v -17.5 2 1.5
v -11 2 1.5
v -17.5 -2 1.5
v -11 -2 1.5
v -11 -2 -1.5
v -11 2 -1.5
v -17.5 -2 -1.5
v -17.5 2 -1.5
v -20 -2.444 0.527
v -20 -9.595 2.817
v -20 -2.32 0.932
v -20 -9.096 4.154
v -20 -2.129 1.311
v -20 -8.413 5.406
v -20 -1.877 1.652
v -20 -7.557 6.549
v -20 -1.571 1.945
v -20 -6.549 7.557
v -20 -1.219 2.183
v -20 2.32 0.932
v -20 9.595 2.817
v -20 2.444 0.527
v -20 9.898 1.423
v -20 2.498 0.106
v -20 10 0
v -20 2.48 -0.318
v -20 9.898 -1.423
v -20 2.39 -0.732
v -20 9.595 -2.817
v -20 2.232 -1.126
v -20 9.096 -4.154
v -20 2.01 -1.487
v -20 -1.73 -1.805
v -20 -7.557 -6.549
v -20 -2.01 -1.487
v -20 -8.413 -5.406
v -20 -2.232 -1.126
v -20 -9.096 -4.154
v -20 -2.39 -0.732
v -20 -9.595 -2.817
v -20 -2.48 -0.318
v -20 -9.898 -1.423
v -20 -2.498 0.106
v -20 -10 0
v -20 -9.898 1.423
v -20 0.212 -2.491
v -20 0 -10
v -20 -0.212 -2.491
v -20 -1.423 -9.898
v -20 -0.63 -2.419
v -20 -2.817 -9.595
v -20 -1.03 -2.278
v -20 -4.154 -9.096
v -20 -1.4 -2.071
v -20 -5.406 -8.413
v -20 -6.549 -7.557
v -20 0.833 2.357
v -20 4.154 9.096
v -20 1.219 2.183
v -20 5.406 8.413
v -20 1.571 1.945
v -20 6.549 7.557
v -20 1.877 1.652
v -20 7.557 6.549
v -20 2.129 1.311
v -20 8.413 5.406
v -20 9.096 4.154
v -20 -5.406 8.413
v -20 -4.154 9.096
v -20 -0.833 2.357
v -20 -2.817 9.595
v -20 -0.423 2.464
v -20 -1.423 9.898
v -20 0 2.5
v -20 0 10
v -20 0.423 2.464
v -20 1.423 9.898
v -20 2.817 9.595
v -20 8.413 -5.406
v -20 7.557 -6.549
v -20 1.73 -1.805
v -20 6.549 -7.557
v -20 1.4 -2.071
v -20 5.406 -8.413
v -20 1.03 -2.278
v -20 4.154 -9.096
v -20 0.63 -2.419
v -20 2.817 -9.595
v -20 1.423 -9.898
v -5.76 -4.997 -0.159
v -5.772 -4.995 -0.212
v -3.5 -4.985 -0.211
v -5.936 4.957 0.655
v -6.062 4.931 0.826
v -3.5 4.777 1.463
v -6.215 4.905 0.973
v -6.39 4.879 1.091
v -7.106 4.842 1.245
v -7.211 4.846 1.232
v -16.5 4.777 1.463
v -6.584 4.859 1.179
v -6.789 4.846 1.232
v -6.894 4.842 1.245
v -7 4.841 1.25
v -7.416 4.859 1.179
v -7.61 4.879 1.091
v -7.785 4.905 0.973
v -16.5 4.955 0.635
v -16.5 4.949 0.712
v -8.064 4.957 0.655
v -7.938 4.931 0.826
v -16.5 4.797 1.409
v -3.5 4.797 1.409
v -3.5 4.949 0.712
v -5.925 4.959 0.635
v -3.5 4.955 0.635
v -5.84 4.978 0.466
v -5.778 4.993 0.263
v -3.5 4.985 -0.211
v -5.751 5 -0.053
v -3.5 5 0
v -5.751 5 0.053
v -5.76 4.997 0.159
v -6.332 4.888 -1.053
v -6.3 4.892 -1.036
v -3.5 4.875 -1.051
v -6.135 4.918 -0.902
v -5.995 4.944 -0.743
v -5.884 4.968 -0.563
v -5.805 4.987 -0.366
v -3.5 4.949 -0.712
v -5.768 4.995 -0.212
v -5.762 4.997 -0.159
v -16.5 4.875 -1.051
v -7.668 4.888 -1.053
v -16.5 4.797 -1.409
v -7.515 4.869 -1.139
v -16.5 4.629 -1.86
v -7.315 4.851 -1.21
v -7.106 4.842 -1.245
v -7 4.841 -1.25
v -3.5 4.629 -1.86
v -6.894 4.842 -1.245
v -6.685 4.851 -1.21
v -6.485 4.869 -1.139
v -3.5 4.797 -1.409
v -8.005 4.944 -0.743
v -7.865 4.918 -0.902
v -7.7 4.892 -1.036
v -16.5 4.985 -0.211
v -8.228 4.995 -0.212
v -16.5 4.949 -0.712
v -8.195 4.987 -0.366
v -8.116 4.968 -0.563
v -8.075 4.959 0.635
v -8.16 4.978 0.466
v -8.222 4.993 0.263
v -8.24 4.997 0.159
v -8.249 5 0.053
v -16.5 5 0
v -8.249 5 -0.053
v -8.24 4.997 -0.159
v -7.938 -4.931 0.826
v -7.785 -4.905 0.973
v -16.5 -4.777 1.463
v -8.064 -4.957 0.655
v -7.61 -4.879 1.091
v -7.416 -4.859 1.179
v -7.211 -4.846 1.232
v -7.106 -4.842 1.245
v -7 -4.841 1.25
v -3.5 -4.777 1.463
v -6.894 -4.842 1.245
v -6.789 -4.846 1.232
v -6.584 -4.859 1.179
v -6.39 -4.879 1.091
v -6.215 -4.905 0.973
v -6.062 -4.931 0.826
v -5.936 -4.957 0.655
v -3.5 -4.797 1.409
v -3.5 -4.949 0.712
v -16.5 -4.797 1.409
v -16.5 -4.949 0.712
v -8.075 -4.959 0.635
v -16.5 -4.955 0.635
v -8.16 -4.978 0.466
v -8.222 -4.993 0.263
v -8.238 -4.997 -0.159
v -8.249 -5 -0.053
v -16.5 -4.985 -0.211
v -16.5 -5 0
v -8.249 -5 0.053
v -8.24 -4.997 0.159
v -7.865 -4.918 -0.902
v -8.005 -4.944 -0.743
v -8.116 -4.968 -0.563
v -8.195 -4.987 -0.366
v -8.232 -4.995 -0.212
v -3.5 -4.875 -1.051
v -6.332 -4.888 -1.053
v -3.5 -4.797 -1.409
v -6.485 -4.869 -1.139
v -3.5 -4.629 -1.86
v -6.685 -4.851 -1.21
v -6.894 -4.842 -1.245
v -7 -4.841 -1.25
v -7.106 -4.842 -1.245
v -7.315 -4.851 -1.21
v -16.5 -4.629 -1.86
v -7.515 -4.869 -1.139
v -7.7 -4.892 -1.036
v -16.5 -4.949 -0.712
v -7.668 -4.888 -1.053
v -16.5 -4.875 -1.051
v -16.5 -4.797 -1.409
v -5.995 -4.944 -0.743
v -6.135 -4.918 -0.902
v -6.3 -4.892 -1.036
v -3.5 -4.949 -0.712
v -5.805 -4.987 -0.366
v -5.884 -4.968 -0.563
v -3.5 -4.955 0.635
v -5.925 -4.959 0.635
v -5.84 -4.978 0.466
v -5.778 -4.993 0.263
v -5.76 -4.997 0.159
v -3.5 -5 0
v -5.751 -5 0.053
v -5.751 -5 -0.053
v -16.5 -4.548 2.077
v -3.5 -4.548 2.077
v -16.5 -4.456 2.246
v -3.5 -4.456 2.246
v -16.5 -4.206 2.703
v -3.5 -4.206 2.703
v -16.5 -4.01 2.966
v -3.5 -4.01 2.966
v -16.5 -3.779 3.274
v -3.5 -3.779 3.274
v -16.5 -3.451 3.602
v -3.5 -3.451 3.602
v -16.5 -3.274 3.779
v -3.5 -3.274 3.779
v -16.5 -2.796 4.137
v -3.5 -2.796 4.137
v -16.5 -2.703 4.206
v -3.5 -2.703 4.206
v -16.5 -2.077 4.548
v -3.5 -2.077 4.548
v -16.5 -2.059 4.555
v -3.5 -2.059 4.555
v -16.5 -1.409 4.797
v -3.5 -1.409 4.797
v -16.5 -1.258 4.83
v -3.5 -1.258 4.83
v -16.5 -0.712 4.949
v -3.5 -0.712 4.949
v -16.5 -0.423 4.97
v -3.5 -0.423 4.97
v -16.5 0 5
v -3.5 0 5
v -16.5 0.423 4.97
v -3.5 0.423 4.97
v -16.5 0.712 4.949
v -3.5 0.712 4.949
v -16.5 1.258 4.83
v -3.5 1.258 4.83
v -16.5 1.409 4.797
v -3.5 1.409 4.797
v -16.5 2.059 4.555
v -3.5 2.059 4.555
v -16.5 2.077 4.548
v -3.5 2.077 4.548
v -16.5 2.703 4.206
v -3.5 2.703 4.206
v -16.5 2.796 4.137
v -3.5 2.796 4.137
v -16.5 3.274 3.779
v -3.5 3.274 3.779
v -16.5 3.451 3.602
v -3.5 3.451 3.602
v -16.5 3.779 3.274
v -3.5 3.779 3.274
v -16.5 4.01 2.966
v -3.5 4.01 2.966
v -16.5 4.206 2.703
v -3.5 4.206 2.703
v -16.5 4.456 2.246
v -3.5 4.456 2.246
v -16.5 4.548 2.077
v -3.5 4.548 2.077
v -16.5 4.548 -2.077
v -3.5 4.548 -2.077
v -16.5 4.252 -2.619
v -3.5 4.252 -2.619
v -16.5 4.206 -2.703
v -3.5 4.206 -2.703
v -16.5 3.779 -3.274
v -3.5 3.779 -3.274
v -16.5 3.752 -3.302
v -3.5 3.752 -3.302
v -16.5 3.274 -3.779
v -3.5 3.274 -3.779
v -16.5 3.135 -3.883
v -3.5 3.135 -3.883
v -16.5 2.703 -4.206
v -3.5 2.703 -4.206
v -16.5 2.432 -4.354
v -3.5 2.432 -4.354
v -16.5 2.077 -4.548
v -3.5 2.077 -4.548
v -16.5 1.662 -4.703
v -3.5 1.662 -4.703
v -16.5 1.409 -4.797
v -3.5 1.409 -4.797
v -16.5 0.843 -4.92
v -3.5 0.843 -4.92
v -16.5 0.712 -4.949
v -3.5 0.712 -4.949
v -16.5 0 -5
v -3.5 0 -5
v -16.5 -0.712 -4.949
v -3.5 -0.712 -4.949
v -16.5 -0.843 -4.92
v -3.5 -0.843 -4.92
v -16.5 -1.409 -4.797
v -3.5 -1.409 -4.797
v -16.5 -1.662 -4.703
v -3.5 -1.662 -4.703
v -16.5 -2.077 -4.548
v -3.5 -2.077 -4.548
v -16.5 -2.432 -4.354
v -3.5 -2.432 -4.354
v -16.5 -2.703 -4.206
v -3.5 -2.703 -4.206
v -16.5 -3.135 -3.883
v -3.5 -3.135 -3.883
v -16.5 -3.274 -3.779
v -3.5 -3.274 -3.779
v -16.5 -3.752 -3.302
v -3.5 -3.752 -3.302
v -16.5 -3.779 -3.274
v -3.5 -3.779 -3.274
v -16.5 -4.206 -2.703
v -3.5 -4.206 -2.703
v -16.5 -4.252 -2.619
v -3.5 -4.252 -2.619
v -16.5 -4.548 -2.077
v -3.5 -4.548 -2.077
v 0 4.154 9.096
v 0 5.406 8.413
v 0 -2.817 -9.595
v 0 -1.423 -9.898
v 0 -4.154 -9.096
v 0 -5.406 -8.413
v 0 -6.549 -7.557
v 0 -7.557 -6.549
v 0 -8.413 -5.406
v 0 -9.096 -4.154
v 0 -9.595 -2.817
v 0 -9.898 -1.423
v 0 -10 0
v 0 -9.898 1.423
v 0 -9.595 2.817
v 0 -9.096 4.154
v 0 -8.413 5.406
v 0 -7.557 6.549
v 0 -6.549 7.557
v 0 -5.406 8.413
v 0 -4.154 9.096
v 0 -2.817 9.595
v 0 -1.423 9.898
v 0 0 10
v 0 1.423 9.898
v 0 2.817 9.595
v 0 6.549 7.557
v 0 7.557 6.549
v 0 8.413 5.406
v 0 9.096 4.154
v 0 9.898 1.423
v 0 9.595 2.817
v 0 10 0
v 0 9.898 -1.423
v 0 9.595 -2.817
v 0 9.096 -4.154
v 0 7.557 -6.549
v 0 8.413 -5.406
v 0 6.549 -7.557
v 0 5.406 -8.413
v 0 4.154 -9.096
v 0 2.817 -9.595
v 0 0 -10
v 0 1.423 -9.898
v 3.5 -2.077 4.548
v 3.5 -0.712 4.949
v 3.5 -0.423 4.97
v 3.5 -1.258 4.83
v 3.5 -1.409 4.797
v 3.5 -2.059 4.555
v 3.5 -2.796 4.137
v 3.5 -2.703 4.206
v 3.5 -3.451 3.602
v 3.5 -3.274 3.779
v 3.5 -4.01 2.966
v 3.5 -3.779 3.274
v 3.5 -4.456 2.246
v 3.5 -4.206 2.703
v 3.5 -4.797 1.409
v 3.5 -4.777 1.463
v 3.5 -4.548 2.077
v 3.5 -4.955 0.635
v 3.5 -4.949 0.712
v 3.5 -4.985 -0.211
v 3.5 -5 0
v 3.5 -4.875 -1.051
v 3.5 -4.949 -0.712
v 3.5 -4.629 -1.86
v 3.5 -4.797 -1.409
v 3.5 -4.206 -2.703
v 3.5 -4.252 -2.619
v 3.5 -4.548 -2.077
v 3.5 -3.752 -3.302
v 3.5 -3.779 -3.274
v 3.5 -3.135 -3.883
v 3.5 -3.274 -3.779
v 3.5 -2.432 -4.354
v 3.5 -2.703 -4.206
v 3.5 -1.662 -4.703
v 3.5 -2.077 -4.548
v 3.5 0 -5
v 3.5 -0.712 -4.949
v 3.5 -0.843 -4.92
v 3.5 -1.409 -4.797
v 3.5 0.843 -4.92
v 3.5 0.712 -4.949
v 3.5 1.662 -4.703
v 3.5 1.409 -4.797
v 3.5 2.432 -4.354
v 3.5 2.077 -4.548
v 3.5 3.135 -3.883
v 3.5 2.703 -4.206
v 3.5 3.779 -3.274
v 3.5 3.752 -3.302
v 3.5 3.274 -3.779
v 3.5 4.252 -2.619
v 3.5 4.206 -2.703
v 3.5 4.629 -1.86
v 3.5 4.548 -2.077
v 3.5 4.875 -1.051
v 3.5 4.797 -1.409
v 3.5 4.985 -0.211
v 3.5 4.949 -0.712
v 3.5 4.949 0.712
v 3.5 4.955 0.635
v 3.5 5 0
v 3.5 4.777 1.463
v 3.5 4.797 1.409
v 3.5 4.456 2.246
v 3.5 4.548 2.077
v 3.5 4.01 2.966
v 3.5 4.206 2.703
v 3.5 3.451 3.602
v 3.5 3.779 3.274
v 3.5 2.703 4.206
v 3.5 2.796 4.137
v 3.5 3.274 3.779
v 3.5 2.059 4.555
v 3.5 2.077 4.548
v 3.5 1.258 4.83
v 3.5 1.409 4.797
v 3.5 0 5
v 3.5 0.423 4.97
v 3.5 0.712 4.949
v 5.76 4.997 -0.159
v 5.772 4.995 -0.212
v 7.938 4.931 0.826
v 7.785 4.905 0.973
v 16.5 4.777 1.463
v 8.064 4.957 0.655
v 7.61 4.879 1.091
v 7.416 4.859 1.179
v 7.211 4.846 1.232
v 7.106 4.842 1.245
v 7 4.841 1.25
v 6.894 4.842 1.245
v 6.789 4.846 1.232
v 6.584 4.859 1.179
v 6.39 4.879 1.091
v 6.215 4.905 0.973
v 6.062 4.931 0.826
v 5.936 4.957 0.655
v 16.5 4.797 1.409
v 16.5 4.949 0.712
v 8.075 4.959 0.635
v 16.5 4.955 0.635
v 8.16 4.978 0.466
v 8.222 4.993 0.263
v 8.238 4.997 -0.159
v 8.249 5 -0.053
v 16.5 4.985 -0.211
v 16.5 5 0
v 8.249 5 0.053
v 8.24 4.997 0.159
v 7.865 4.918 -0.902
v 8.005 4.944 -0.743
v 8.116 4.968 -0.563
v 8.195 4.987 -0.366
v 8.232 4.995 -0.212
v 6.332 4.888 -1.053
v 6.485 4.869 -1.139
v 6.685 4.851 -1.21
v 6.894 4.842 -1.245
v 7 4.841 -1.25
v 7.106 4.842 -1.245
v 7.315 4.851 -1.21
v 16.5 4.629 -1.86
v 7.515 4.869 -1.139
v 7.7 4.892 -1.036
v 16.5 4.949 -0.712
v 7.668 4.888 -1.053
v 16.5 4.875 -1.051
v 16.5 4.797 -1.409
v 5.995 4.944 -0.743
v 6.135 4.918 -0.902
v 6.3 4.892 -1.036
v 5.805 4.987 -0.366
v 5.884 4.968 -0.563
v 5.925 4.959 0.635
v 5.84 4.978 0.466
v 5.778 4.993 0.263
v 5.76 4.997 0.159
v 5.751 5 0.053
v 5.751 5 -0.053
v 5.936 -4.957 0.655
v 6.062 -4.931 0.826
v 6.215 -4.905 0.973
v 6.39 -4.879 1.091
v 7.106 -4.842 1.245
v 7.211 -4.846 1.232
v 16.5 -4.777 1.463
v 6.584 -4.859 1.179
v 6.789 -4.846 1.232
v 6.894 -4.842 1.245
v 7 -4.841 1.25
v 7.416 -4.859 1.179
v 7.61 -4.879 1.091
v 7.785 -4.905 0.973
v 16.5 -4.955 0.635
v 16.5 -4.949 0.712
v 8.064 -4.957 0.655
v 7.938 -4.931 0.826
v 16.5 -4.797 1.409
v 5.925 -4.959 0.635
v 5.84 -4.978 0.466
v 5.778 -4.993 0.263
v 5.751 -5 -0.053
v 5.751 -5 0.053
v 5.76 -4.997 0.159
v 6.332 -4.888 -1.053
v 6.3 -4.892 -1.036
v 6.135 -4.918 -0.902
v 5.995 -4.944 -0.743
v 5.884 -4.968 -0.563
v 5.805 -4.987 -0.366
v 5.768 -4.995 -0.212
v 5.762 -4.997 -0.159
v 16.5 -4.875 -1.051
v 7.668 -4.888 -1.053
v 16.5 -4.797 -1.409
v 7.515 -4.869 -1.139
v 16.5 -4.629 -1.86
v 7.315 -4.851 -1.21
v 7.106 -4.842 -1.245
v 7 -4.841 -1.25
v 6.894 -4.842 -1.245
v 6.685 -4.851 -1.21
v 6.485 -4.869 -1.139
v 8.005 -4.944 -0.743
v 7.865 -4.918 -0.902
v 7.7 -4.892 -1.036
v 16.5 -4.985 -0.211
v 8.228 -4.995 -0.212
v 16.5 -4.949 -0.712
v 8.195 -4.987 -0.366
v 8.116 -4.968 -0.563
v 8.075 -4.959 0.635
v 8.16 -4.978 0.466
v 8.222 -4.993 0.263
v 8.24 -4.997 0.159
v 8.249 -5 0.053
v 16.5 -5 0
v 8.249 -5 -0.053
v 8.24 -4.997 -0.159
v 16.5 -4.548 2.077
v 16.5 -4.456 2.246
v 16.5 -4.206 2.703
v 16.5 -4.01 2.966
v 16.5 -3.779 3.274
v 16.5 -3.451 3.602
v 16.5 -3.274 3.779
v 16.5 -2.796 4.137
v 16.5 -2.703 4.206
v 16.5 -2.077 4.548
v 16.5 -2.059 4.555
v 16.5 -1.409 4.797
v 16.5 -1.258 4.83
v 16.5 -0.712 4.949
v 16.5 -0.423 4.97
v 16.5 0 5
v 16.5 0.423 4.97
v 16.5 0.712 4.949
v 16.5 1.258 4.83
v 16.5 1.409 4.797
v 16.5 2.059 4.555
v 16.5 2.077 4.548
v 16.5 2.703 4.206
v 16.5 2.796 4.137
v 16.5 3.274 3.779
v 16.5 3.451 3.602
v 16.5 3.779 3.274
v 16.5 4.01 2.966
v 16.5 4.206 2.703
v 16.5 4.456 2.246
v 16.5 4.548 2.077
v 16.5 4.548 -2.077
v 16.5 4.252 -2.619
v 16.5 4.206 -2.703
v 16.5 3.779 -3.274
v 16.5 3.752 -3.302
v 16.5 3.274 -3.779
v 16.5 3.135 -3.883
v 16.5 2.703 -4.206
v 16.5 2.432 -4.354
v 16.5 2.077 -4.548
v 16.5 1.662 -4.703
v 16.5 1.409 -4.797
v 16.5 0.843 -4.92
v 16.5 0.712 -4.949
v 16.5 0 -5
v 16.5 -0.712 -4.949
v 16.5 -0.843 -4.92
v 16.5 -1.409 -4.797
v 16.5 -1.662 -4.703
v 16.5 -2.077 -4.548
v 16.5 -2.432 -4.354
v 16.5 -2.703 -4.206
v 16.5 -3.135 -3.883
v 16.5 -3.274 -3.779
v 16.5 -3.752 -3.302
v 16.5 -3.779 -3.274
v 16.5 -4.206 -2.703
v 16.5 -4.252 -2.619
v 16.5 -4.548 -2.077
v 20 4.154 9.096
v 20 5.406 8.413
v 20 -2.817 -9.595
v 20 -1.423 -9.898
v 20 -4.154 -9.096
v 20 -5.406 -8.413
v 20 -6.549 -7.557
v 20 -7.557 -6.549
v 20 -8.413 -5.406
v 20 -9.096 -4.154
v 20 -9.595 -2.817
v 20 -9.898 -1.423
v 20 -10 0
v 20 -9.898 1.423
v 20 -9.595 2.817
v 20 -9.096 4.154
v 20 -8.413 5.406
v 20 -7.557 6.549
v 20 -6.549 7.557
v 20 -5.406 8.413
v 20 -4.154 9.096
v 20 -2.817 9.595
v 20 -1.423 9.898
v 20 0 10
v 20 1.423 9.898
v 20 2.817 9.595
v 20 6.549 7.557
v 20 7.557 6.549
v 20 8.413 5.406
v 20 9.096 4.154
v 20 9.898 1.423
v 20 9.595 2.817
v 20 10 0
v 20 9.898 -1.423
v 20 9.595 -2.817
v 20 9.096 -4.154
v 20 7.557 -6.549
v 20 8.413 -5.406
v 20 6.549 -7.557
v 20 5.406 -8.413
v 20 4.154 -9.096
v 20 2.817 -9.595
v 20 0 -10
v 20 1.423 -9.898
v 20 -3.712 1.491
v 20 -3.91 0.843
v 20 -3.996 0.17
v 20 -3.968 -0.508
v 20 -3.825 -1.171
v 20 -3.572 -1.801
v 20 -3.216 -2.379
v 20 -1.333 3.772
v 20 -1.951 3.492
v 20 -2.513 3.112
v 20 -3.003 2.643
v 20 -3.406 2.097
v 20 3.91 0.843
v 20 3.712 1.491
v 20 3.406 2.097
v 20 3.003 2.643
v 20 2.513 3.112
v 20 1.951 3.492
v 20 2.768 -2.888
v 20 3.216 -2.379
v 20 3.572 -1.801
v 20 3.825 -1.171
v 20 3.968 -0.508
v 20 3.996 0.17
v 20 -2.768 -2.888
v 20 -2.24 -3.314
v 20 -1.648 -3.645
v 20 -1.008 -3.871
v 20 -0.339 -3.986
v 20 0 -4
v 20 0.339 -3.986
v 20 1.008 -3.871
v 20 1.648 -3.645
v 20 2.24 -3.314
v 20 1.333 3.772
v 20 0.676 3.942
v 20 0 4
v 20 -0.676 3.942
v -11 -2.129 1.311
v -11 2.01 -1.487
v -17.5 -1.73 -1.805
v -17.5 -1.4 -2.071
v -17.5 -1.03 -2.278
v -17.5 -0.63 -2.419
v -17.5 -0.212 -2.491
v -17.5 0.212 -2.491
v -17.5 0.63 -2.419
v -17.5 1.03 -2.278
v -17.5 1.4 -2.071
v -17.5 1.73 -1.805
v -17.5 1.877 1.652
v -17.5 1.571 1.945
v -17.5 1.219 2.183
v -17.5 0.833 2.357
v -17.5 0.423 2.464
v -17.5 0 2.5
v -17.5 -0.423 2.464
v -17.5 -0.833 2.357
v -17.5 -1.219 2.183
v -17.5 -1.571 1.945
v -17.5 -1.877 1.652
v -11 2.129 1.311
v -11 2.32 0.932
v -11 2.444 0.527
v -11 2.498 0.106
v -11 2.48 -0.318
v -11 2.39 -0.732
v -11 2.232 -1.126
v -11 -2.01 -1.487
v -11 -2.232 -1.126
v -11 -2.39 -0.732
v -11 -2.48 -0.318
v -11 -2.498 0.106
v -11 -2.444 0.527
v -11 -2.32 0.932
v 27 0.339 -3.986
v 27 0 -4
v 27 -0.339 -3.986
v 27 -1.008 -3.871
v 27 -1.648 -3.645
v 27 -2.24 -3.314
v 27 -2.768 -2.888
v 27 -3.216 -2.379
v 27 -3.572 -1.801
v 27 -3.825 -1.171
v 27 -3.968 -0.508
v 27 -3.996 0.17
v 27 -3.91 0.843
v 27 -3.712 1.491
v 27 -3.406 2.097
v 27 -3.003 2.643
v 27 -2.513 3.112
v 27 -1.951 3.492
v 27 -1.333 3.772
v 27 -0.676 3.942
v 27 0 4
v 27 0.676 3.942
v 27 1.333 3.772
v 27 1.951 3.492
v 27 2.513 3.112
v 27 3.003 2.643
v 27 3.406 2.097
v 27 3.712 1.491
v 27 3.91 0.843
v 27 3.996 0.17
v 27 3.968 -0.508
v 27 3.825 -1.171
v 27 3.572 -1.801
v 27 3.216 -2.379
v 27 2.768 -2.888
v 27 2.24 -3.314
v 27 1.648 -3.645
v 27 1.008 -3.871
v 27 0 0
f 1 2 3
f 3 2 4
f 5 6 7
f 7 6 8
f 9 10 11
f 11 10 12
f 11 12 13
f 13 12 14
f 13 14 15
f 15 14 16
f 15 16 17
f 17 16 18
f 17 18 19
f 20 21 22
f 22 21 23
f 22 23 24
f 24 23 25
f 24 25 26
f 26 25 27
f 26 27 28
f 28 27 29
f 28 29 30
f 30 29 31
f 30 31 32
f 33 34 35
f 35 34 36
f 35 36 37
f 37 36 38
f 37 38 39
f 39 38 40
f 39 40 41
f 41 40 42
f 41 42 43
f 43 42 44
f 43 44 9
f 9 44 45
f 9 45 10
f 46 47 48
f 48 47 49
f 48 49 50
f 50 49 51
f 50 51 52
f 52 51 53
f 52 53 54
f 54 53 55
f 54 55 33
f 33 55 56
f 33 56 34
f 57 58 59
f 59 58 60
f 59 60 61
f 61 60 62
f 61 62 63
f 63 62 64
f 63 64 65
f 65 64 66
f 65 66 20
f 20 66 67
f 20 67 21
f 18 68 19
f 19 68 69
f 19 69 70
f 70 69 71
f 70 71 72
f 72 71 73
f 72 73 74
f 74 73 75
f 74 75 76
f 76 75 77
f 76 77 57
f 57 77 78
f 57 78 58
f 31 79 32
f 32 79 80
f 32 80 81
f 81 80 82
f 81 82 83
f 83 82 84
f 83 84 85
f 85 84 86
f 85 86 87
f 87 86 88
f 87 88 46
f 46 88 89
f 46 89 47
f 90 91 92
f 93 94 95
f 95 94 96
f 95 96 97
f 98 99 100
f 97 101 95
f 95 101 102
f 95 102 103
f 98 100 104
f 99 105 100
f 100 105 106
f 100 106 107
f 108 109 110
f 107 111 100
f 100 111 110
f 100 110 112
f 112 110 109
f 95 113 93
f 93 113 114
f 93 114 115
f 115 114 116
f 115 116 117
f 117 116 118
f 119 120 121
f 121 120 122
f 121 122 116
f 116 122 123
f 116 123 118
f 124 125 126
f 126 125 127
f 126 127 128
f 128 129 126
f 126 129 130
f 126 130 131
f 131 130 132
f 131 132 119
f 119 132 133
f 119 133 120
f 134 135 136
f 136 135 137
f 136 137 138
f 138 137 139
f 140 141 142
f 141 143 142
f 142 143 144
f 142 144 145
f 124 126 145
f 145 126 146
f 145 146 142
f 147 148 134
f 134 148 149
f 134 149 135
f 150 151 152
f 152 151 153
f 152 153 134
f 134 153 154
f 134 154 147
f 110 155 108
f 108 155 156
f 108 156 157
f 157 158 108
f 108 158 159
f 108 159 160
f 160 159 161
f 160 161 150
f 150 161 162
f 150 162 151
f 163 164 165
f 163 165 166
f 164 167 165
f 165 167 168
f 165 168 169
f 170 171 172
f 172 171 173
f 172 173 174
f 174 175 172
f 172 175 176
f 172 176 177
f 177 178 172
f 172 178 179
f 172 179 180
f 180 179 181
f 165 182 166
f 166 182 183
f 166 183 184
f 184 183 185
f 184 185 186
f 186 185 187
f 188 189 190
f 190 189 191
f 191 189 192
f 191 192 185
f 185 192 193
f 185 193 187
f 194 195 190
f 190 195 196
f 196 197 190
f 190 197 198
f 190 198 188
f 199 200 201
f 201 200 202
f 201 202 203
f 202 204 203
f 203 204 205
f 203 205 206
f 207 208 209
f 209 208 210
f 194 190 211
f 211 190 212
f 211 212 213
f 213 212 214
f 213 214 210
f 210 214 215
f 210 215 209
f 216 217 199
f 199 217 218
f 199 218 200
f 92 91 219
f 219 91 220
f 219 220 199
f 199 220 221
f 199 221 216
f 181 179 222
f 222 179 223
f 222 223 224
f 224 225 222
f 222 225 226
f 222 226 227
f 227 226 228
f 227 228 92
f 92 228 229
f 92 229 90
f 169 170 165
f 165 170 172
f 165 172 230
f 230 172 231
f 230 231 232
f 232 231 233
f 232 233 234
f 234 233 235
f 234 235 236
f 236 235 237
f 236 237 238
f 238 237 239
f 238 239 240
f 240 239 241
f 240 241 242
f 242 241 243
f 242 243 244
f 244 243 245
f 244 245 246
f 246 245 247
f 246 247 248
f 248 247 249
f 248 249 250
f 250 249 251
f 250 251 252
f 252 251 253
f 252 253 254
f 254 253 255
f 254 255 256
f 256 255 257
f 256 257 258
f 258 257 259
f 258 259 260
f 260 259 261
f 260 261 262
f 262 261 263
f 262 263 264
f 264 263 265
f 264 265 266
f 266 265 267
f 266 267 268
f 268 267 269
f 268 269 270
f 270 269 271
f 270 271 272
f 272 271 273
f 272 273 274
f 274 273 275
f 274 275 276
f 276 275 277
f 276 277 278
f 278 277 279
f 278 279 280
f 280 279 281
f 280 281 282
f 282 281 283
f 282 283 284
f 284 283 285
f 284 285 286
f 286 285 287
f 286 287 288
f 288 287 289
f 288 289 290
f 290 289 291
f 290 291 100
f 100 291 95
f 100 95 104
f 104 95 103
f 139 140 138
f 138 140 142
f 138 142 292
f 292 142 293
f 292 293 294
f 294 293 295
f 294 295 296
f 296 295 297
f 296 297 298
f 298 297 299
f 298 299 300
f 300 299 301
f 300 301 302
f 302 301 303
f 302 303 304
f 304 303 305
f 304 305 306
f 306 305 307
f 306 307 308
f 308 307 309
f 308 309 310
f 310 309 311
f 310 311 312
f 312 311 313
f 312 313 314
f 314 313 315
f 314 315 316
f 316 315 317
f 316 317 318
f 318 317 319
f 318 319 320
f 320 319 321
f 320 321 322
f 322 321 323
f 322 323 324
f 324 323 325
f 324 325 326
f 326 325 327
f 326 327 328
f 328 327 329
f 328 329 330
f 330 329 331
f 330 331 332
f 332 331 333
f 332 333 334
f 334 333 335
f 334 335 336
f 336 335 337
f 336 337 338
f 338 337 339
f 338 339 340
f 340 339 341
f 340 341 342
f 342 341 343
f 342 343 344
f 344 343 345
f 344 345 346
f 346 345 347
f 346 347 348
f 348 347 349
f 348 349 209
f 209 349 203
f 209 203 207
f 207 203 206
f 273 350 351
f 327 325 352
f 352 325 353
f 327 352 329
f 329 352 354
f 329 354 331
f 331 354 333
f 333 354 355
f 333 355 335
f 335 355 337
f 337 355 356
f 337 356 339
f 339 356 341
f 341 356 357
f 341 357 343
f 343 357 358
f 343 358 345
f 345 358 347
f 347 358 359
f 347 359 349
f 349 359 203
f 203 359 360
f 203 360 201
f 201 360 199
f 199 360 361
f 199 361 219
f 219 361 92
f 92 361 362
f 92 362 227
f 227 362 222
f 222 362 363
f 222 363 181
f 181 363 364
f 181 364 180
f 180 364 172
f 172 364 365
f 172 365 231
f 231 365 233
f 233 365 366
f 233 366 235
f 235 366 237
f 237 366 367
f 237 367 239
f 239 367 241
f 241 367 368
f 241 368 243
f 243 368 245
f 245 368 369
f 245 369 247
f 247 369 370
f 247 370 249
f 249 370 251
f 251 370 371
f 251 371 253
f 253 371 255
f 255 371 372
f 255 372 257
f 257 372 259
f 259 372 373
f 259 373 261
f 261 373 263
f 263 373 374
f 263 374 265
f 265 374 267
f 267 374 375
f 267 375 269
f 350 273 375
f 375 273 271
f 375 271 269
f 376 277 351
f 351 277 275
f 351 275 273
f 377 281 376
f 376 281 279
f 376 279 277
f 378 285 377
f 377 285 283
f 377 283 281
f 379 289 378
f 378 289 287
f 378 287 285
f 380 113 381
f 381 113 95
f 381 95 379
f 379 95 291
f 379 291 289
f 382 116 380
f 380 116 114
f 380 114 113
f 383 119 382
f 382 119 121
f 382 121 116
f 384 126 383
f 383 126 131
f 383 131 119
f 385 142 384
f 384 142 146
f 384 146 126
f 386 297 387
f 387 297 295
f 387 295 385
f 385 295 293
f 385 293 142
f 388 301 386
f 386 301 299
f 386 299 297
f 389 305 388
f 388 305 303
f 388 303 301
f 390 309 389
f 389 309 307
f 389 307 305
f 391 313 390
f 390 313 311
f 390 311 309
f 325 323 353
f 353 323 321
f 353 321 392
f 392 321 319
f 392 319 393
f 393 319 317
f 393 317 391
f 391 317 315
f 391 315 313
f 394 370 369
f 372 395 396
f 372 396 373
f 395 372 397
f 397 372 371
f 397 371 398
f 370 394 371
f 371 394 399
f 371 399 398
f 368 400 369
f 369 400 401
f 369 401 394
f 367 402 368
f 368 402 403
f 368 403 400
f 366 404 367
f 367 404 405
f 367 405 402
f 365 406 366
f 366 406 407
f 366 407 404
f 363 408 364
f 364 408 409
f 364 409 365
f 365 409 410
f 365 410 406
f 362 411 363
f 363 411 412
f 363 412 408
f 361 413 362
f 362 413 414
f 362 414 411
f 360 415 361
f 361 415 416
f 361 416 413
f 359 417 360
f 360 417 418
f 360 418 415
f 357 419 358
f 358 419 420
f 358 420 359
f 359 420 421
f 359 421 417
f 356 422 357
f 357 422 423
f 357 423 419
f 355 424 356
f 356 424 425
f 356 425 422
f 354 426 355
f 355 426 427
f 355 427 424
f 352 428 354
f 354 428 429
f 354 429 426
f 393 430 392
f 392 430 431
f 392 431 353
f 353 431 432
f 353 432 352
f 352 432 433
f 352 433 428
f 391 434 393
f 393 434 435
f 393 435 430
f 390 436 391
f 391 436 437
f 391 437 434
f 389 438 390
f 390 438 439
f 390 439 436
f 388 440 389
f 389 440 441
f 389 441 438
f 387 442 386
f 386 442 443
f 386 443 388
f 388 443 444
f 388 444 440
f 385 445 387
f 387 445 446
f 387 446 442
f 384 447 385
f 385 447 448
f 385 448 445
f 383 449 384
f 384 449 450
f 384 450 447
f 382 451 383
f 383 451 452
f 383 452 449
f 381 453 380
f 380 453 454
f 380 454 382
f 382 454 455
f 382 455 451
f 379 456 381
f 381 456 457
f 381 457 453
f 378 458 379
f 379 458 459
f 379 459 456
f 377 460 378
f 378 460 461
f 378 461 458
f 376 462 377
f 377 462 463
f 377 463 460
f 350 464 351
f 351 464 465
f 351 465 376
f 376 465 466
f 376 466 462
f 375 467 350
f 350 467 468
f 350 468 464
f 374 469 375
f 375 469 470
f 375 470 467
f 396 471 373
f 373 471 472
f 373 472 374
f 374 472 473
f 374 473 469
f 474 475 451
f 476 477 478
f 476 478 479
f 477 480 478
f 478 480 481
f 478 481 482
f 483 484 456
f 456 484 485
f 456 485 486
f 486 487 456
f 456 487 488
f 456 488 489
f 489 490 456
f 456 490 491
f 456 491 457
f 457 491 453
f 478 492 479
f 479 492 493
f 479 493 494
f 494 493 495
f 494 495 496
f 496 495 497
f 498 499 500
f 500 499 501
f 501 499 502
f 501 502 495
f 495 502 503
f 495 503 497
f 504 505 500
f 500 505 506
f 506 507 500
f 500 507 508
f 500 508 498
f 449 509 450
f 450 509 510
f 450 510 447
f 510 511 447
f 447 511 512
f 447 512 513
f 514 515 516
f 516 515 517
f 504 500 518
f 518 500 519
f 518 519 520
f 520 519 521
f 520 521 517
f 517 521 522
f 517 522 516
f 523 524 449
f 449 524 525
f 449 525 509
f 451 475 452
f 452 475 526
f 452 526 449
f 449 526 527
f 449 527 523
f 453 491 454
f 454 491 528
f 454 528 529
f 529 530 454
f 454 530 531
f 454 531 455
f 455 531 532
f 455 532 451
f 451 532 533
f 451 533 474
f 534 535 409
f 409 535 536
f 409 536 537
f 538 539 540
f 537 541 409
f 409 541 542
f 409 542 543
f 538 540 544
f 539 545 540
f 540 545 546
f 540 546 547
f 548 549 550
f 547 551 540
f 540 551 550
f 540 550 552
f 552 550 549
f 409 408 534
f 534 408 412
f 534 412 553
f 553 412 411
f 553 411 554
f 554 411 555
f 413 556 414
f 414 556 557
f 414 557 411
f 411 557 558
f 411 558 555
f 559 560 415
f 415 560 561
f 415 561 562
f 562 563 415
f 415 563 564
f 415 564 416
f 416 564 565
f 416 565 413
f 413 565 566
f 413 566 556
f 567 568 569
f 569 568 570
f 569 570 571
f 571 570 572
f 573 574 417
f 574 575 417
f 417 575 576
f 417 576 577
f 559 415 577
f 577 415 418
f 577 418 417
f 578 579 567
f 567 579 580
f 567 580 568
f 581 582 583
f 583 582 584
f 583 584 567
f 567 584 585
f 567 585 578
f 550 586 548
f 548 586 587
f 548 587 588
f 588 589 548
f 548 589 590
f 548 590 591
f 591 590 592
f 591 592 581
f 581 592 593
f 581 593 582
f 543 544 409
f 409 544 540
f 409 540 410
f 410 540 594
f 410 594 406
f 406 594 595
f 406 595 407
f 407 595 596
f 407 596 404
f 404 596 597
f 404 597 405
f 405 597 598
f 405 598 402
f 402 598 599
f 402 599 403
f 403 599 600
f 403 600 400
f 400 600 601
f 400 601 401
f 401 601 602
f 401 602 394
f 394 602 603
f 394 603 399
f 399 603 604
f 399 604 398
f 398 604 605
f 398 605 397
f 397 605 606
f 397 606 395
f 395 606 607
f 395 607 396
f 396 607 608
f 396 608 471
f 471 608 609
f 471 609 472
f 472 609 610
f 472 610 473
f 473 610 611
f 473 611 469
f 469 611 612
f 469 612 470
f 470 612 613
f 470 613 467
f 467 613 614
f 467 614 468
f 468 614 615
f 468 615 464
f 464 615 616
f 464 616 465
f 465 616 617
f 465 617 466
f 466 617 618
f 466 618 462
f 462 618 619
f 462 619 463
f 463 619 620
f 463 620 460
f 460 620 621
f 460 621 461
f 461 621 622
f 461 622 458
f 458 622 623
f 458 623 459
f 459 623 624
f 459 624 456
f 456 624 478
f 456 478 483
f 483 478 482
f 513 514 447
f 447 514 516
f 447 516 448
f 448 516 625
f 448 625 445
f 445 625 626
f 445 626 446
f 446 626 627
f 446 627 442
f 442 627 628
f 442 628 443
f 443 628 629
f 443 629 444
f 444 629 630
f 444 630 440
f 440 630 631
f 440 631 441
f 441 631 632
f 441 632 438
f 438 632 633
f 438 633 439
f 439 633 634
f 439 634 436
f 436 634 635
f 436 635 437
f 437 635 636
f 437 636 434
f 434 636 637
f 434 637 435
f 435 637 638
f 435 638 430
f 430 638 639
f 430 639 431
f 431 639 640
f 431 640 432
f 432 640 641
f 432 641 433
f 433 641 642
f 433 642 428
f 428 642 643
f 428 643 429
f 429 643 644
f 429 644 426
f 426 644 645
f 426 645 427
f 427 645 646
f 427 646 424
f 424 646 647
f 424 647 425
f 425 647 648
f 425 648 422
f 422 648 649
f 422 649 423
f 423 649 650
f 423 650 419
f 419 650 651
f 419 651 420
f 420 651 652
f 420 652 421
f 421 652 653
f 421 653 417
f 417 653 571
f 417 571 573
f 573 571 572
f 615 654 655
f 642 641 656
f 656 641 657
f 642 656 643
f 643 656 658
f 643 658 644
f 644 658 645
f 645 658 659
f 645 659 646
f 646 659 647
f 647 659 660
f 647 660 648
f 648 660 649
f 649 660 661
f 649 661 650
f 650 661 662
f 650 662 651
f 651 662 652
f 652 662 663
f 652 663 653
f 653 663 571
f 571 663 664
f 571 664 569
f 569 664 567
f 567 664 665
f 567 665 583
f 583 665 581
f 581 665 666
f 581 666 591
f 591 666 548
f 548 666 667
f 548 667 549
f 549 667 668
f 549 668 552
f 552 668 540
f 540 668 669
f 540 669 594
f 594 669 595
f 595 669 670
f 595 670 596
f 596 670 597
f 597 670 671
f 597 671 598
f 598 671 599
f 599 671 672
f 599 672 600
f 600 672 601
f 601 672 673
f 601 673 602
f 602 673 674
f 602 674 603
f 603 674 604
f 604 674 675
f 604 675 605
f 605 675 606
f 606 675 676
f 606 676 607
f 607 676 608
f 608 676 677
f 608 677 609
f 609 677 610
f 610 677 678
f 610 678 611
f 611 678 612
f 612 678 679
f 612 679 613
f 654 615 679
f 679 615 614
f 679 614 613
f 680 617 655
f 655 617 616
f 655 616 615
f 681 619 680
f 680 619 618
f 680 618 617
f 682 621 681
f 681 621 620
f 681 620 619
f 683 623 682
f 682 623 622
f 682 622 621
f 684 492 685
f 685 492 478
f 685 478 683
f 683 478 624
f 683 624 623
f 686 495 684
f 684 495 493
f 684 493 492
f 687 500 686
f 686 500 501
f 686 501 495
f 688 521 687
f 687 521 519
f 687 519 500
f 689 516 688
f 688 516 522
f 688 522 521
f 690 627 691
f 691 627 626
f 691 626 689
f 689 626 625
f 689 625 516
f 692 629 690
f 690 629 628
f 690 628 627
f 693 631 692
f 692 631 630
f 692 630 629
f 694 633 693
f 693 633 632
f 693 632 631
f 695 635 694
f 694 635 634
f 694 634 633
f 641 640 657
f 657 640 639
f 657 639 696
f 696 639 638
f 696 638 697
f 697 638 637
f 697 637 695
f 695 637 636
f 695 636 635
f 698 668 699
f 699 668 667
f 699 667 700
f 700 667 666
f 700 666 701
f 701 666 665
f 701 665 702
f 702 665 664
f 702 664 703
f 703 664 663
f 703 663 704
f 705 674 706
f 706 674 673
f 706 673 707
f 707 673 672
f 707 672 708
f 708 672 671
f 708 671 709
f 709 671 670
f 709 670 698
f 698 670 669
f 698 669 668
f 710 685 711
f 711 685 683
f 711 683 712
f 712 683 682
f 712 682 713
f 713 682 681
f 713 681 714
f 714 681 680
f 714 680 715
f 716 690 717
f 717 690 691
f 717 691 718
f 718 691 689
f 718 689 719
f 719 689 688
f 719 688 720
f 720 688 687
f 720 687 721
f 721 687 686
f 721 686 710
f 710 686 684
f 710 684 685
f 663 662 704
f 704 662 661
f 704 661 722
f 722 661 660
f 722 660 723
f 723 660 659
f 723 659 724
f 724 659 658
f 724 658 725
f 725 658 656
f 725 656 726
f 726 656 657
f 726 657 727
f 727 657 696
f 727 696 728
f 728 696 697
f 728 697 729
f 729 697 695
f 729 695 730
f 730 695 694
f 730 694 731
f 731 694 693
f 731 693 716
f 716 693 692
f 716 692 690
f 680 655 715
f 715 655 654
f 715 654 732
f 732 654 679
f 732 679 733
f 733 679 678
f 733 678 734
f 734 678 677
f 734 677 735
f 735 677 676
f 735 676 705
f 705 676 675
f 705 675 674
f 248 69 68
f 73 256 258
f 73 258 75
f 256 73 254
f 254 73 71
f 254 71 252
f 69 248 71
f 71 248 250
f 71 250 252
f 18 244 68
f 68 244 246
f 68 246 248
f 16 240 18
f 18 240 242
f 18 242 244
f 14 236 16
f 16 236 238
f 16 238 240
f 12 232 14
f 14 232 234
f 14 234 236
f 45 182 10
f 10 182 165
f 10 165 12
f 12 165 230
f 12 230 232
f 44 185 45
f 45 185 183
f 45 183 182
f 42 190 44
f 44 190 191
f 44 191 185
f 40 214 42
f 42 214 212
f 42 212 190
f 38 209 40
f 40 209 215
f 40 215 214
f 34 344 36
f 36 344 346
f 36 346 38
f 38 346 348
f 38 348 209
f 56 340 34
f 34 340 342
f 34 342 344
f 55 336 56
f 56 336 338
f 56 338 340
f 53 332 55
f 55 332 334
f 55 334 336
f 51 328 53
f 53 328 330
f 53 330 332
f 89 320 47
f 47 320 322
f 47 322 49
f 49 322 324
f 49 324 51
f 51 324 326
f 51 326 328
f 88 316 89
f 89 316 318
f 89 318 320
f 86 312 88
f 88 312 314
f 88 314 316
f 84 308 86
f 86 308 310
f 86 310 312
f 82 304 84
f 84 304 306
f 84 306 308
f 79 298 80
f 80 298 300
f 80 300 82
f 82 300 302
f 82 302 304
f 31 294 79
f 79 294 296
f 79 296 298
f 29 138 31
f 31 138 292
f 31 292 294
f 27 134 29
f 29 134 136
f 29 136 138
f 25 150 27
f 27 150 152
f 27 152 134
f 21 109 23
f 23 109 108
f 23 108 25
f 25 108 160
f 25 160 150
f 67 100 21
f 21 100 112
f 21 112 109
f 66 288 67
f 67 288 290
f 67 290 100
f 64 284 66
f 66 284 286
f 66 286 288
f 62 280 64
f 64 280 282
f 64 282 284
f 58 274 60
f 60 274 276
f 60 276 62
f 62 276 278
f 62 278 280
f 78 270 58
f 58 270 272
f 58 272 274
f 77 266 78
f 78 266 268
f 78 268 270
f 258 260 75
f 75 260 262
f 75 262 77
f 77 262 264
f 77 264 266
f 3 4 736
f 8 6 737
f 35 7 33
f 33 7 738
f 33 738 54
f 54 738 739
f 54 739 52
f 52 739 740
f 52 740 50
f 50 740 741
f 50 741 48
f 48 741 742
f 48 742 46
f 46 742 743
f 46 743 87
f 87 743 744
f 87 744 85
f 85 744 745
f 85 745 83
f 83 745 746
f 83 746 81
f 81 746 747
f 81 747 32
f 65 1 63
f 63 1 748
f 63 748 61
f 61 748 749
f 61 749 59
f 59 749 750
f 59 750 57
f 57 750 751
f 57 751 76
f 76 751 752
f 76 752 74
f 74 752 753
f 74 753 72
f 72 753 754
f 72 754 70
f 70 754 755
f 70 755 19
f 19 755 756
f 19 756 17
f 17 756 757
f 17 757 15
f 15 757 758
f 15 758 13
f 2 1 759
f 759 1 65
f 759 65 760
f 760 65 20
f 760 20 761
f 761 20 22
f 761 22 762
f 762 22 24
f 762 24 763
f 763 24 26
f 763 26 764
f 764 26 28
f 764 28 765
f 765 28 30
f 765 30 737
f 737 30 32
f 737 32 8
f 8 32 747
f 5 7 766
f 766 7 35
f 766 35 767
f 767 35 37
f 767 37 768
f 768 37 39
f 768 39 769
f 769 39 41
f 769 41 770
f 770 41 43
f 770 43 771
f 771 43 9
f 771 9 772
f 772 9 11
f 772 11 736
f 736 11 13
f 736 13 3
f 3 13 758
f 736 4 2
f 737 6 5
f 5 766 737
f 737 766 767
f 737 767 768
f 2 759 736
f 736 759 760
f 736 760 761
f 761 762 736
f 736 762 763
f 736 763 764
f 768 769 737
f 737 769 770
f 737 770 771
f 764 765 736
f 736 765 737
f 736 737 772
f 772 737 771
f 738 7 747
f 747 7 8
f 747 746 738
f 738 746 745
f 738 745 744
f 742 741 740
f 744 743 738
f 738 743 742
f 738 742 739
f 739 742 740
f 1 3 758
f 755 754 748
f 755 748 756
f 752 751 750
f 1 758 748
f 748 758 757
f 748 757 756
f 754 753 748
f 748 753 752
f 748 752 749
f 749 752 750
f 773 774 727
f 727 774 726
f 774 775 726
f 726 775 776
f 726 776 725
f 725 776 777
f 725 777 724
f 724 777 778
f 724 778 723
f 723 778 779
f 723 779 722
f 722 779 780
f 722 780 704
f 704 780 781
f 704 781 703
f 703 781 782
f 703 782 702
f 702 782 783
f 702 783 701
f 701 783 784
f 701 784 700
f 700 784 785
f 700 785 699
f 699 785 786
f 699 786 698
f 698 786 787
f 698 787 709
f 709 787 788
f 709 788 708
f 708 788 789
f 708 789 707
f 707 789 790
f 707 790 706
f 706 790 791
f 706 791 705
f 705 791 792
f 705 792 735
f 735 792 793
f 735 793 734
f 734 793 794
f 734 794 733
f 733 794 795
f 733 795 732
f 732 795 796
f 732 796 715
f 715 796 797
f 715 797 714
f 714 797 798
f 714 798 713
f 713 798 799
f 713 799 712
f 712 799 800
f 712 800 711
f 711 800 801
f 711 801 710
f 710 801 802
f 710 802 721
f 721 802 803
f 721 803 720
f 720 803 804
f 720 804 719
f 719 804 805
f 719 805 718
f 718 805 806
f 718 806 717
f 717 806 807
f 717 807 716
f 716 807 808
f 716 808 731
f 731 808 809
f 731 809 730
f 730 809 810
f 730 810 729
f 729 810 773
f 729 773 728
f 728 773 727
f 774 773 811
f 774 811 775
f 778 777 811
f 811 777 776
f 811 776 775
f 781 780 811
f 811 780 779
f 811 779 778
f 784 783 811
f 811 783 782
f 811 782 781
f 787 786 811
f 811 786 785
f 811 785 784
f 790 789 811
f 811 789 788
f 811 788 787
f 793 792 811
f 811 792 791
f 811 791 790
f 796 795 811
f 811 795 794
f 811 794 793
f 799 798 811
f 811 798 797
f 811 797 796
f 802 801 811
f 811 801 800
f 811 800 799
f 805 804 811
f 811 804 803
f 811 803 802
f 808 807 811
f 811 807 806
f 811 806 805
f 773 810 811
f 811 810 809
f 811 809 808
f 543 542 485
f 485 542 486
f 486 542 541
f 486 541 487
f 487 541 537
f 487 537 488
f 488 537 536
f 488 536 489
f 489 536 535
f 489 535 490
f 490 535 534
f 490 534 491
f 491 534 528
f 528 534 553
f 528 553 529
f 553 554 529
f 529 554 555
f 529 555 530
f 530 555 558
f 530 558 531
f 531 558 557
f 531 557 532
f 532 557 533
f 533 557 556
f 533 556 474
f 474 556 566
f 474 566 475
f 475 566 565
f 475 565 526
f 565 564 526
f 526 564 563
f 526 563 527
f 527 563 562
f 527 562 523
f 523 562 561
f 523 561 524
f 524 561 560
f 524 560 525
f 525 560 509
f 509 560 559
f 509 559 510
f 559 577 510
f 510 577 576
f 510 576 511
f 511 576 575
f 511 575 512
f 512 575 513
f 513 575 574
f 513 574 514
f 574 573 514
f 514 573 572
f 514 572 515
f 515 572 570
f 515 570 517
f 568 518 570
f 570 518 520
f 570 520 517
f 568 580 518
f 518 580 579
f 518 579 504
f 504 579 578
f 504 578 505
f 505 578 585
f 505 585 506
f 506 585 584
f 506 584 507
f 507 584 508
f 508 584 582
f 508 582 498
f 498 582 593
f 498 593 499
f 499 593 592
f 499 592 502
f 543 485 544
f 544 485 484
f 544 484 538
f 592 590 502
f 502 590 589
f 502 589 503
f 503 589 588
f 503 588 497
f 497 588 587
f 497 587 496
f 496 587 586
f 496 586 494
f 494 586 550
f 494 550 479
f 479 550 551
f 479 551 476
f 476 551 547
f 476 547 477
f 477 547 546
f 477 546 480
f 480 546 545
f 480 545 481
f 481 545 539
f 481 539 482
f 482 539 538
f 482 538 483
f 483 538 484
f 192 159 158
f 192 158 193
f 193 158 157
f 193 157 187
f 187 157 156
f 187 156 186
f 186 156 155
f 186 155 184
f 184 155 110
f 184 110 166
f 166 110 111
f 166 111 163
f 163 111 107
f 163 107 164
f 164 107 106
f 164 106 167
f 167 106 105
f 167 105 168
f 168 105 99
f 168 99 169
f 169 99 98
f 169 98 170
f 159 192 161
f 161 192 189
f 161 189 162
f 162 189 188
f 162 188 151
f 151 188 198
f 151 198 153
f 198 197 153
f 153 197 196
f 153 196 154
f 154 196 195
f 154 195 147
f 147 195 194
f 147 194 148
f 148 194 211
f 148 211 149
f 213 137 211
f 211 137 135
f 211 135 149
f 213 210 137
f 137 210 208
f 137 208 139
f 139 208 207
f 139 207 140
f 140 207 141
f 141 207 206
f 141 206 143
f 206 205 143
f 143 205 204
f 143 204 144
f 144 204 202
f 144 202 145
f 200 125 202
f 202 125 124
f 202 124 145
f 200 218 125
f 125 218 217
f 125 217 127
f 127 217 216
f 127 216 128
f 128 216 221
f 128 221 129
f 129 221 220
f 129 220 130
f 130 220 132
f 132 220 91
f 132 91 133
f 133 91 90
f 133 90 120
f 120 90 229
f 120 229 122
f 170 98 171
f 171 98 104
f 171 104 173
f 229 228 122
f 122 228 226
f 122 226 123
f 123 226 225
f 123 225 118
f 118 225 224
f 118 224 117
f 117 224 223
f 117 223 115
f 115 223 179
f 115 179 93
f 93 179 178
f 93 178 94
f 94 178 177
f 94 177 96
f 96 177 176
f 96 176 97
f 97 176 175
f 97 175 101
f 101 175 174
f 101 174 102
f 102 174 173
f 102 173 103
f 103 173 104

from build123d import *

# Parameters (mm, degrees)
CUT_EXTRUDE1_DEPTH      = 9
SKETCH3_R               = 2.5
CUT_EXTRUDE2_DEPTH      = 2.5
SKETCH4_R               = 4
BOSS_EXTRUDE1_DEPTH     = 7
SKETCH5_R               = 1.25
CUT_EXTRUDE3_DEPTH      = 11
CUT_EXTRUDE3_DEPTH_BACK = 11


with BuildPart() as part:
    # Sketch1 → Revolve1 (revolve)
    with BuildSketch(Plane.XY):
        Polygon((20, 0), (-20, 0), (-20, 10), (-16.5, 5), (-3.5, 5), (0, 10), (3.5, 5), (16.5, 5), (20, 10), align=None)
    revolve(axis=Axis((20, 0, 0), (-1, 0, 0)))

    # Sketch2 → Cut-Extrude1 (cut)
    with BuildSketch(Plane.ZY.offset(20)):
        with BuildLine():
            ThreePointArc((1.5, 2), (0, 2.5), (-1.5, 2))
            Line((-1.5, 2), (-1.5, -2))
            ThreePointArc((-1.5, -2), (0, -2.5), (1.5, -2))
            Line((1.5, -2), (1.5, 2))
        make_face()
    extrude(amount=-CUT_EXTRUDE1_DEPTH, mode=Mode.SUBTRACT)

    # Sketch3 → Cut-Extrude2 (cut)
    with BuildSketch(Plane.ZY.offset(20)):
        Circle(SKETCH3_R)
    extrude(amount=-CUT_EXTRUDE2_DEPTH, mode=Mode.SUBTRACT)

    # Sketch4 → Boss-Extrude1 (add)
    with BuildSketch(Plane(origin=(20, 0, 0), x_dir=(0, 0, -1), z_dir=(1, 0, 0))):
        Circle(SKETCH4_R)
    extrude(amount=BOSS_EXTRUDE1_DEPTH)

    # Sketch5 → Cut-Extrude3 (cut, two sides)
    with BuildSketch(Plane(origin=(0, 0, 0), x_dir=(1, 0, 0), z_dir=(0, 1, 0))) as cut_extrude3_sk:
        with Locations((-7, 0)):
            Circle(SKETCH5_R)
        with Locations((7, 0)):
            Circle(SKETCH5_R)
    extrude(amount=CUT_EXTRUDE3_DEPTH, mode=Mode.SUBTRACT)
    extrude(cut_extrude3_sk.sketch, amount=-CUT_EXTRUDE3_DEPTH_BACK, mode=Mode.SUBTRACT)


solid = part.part
